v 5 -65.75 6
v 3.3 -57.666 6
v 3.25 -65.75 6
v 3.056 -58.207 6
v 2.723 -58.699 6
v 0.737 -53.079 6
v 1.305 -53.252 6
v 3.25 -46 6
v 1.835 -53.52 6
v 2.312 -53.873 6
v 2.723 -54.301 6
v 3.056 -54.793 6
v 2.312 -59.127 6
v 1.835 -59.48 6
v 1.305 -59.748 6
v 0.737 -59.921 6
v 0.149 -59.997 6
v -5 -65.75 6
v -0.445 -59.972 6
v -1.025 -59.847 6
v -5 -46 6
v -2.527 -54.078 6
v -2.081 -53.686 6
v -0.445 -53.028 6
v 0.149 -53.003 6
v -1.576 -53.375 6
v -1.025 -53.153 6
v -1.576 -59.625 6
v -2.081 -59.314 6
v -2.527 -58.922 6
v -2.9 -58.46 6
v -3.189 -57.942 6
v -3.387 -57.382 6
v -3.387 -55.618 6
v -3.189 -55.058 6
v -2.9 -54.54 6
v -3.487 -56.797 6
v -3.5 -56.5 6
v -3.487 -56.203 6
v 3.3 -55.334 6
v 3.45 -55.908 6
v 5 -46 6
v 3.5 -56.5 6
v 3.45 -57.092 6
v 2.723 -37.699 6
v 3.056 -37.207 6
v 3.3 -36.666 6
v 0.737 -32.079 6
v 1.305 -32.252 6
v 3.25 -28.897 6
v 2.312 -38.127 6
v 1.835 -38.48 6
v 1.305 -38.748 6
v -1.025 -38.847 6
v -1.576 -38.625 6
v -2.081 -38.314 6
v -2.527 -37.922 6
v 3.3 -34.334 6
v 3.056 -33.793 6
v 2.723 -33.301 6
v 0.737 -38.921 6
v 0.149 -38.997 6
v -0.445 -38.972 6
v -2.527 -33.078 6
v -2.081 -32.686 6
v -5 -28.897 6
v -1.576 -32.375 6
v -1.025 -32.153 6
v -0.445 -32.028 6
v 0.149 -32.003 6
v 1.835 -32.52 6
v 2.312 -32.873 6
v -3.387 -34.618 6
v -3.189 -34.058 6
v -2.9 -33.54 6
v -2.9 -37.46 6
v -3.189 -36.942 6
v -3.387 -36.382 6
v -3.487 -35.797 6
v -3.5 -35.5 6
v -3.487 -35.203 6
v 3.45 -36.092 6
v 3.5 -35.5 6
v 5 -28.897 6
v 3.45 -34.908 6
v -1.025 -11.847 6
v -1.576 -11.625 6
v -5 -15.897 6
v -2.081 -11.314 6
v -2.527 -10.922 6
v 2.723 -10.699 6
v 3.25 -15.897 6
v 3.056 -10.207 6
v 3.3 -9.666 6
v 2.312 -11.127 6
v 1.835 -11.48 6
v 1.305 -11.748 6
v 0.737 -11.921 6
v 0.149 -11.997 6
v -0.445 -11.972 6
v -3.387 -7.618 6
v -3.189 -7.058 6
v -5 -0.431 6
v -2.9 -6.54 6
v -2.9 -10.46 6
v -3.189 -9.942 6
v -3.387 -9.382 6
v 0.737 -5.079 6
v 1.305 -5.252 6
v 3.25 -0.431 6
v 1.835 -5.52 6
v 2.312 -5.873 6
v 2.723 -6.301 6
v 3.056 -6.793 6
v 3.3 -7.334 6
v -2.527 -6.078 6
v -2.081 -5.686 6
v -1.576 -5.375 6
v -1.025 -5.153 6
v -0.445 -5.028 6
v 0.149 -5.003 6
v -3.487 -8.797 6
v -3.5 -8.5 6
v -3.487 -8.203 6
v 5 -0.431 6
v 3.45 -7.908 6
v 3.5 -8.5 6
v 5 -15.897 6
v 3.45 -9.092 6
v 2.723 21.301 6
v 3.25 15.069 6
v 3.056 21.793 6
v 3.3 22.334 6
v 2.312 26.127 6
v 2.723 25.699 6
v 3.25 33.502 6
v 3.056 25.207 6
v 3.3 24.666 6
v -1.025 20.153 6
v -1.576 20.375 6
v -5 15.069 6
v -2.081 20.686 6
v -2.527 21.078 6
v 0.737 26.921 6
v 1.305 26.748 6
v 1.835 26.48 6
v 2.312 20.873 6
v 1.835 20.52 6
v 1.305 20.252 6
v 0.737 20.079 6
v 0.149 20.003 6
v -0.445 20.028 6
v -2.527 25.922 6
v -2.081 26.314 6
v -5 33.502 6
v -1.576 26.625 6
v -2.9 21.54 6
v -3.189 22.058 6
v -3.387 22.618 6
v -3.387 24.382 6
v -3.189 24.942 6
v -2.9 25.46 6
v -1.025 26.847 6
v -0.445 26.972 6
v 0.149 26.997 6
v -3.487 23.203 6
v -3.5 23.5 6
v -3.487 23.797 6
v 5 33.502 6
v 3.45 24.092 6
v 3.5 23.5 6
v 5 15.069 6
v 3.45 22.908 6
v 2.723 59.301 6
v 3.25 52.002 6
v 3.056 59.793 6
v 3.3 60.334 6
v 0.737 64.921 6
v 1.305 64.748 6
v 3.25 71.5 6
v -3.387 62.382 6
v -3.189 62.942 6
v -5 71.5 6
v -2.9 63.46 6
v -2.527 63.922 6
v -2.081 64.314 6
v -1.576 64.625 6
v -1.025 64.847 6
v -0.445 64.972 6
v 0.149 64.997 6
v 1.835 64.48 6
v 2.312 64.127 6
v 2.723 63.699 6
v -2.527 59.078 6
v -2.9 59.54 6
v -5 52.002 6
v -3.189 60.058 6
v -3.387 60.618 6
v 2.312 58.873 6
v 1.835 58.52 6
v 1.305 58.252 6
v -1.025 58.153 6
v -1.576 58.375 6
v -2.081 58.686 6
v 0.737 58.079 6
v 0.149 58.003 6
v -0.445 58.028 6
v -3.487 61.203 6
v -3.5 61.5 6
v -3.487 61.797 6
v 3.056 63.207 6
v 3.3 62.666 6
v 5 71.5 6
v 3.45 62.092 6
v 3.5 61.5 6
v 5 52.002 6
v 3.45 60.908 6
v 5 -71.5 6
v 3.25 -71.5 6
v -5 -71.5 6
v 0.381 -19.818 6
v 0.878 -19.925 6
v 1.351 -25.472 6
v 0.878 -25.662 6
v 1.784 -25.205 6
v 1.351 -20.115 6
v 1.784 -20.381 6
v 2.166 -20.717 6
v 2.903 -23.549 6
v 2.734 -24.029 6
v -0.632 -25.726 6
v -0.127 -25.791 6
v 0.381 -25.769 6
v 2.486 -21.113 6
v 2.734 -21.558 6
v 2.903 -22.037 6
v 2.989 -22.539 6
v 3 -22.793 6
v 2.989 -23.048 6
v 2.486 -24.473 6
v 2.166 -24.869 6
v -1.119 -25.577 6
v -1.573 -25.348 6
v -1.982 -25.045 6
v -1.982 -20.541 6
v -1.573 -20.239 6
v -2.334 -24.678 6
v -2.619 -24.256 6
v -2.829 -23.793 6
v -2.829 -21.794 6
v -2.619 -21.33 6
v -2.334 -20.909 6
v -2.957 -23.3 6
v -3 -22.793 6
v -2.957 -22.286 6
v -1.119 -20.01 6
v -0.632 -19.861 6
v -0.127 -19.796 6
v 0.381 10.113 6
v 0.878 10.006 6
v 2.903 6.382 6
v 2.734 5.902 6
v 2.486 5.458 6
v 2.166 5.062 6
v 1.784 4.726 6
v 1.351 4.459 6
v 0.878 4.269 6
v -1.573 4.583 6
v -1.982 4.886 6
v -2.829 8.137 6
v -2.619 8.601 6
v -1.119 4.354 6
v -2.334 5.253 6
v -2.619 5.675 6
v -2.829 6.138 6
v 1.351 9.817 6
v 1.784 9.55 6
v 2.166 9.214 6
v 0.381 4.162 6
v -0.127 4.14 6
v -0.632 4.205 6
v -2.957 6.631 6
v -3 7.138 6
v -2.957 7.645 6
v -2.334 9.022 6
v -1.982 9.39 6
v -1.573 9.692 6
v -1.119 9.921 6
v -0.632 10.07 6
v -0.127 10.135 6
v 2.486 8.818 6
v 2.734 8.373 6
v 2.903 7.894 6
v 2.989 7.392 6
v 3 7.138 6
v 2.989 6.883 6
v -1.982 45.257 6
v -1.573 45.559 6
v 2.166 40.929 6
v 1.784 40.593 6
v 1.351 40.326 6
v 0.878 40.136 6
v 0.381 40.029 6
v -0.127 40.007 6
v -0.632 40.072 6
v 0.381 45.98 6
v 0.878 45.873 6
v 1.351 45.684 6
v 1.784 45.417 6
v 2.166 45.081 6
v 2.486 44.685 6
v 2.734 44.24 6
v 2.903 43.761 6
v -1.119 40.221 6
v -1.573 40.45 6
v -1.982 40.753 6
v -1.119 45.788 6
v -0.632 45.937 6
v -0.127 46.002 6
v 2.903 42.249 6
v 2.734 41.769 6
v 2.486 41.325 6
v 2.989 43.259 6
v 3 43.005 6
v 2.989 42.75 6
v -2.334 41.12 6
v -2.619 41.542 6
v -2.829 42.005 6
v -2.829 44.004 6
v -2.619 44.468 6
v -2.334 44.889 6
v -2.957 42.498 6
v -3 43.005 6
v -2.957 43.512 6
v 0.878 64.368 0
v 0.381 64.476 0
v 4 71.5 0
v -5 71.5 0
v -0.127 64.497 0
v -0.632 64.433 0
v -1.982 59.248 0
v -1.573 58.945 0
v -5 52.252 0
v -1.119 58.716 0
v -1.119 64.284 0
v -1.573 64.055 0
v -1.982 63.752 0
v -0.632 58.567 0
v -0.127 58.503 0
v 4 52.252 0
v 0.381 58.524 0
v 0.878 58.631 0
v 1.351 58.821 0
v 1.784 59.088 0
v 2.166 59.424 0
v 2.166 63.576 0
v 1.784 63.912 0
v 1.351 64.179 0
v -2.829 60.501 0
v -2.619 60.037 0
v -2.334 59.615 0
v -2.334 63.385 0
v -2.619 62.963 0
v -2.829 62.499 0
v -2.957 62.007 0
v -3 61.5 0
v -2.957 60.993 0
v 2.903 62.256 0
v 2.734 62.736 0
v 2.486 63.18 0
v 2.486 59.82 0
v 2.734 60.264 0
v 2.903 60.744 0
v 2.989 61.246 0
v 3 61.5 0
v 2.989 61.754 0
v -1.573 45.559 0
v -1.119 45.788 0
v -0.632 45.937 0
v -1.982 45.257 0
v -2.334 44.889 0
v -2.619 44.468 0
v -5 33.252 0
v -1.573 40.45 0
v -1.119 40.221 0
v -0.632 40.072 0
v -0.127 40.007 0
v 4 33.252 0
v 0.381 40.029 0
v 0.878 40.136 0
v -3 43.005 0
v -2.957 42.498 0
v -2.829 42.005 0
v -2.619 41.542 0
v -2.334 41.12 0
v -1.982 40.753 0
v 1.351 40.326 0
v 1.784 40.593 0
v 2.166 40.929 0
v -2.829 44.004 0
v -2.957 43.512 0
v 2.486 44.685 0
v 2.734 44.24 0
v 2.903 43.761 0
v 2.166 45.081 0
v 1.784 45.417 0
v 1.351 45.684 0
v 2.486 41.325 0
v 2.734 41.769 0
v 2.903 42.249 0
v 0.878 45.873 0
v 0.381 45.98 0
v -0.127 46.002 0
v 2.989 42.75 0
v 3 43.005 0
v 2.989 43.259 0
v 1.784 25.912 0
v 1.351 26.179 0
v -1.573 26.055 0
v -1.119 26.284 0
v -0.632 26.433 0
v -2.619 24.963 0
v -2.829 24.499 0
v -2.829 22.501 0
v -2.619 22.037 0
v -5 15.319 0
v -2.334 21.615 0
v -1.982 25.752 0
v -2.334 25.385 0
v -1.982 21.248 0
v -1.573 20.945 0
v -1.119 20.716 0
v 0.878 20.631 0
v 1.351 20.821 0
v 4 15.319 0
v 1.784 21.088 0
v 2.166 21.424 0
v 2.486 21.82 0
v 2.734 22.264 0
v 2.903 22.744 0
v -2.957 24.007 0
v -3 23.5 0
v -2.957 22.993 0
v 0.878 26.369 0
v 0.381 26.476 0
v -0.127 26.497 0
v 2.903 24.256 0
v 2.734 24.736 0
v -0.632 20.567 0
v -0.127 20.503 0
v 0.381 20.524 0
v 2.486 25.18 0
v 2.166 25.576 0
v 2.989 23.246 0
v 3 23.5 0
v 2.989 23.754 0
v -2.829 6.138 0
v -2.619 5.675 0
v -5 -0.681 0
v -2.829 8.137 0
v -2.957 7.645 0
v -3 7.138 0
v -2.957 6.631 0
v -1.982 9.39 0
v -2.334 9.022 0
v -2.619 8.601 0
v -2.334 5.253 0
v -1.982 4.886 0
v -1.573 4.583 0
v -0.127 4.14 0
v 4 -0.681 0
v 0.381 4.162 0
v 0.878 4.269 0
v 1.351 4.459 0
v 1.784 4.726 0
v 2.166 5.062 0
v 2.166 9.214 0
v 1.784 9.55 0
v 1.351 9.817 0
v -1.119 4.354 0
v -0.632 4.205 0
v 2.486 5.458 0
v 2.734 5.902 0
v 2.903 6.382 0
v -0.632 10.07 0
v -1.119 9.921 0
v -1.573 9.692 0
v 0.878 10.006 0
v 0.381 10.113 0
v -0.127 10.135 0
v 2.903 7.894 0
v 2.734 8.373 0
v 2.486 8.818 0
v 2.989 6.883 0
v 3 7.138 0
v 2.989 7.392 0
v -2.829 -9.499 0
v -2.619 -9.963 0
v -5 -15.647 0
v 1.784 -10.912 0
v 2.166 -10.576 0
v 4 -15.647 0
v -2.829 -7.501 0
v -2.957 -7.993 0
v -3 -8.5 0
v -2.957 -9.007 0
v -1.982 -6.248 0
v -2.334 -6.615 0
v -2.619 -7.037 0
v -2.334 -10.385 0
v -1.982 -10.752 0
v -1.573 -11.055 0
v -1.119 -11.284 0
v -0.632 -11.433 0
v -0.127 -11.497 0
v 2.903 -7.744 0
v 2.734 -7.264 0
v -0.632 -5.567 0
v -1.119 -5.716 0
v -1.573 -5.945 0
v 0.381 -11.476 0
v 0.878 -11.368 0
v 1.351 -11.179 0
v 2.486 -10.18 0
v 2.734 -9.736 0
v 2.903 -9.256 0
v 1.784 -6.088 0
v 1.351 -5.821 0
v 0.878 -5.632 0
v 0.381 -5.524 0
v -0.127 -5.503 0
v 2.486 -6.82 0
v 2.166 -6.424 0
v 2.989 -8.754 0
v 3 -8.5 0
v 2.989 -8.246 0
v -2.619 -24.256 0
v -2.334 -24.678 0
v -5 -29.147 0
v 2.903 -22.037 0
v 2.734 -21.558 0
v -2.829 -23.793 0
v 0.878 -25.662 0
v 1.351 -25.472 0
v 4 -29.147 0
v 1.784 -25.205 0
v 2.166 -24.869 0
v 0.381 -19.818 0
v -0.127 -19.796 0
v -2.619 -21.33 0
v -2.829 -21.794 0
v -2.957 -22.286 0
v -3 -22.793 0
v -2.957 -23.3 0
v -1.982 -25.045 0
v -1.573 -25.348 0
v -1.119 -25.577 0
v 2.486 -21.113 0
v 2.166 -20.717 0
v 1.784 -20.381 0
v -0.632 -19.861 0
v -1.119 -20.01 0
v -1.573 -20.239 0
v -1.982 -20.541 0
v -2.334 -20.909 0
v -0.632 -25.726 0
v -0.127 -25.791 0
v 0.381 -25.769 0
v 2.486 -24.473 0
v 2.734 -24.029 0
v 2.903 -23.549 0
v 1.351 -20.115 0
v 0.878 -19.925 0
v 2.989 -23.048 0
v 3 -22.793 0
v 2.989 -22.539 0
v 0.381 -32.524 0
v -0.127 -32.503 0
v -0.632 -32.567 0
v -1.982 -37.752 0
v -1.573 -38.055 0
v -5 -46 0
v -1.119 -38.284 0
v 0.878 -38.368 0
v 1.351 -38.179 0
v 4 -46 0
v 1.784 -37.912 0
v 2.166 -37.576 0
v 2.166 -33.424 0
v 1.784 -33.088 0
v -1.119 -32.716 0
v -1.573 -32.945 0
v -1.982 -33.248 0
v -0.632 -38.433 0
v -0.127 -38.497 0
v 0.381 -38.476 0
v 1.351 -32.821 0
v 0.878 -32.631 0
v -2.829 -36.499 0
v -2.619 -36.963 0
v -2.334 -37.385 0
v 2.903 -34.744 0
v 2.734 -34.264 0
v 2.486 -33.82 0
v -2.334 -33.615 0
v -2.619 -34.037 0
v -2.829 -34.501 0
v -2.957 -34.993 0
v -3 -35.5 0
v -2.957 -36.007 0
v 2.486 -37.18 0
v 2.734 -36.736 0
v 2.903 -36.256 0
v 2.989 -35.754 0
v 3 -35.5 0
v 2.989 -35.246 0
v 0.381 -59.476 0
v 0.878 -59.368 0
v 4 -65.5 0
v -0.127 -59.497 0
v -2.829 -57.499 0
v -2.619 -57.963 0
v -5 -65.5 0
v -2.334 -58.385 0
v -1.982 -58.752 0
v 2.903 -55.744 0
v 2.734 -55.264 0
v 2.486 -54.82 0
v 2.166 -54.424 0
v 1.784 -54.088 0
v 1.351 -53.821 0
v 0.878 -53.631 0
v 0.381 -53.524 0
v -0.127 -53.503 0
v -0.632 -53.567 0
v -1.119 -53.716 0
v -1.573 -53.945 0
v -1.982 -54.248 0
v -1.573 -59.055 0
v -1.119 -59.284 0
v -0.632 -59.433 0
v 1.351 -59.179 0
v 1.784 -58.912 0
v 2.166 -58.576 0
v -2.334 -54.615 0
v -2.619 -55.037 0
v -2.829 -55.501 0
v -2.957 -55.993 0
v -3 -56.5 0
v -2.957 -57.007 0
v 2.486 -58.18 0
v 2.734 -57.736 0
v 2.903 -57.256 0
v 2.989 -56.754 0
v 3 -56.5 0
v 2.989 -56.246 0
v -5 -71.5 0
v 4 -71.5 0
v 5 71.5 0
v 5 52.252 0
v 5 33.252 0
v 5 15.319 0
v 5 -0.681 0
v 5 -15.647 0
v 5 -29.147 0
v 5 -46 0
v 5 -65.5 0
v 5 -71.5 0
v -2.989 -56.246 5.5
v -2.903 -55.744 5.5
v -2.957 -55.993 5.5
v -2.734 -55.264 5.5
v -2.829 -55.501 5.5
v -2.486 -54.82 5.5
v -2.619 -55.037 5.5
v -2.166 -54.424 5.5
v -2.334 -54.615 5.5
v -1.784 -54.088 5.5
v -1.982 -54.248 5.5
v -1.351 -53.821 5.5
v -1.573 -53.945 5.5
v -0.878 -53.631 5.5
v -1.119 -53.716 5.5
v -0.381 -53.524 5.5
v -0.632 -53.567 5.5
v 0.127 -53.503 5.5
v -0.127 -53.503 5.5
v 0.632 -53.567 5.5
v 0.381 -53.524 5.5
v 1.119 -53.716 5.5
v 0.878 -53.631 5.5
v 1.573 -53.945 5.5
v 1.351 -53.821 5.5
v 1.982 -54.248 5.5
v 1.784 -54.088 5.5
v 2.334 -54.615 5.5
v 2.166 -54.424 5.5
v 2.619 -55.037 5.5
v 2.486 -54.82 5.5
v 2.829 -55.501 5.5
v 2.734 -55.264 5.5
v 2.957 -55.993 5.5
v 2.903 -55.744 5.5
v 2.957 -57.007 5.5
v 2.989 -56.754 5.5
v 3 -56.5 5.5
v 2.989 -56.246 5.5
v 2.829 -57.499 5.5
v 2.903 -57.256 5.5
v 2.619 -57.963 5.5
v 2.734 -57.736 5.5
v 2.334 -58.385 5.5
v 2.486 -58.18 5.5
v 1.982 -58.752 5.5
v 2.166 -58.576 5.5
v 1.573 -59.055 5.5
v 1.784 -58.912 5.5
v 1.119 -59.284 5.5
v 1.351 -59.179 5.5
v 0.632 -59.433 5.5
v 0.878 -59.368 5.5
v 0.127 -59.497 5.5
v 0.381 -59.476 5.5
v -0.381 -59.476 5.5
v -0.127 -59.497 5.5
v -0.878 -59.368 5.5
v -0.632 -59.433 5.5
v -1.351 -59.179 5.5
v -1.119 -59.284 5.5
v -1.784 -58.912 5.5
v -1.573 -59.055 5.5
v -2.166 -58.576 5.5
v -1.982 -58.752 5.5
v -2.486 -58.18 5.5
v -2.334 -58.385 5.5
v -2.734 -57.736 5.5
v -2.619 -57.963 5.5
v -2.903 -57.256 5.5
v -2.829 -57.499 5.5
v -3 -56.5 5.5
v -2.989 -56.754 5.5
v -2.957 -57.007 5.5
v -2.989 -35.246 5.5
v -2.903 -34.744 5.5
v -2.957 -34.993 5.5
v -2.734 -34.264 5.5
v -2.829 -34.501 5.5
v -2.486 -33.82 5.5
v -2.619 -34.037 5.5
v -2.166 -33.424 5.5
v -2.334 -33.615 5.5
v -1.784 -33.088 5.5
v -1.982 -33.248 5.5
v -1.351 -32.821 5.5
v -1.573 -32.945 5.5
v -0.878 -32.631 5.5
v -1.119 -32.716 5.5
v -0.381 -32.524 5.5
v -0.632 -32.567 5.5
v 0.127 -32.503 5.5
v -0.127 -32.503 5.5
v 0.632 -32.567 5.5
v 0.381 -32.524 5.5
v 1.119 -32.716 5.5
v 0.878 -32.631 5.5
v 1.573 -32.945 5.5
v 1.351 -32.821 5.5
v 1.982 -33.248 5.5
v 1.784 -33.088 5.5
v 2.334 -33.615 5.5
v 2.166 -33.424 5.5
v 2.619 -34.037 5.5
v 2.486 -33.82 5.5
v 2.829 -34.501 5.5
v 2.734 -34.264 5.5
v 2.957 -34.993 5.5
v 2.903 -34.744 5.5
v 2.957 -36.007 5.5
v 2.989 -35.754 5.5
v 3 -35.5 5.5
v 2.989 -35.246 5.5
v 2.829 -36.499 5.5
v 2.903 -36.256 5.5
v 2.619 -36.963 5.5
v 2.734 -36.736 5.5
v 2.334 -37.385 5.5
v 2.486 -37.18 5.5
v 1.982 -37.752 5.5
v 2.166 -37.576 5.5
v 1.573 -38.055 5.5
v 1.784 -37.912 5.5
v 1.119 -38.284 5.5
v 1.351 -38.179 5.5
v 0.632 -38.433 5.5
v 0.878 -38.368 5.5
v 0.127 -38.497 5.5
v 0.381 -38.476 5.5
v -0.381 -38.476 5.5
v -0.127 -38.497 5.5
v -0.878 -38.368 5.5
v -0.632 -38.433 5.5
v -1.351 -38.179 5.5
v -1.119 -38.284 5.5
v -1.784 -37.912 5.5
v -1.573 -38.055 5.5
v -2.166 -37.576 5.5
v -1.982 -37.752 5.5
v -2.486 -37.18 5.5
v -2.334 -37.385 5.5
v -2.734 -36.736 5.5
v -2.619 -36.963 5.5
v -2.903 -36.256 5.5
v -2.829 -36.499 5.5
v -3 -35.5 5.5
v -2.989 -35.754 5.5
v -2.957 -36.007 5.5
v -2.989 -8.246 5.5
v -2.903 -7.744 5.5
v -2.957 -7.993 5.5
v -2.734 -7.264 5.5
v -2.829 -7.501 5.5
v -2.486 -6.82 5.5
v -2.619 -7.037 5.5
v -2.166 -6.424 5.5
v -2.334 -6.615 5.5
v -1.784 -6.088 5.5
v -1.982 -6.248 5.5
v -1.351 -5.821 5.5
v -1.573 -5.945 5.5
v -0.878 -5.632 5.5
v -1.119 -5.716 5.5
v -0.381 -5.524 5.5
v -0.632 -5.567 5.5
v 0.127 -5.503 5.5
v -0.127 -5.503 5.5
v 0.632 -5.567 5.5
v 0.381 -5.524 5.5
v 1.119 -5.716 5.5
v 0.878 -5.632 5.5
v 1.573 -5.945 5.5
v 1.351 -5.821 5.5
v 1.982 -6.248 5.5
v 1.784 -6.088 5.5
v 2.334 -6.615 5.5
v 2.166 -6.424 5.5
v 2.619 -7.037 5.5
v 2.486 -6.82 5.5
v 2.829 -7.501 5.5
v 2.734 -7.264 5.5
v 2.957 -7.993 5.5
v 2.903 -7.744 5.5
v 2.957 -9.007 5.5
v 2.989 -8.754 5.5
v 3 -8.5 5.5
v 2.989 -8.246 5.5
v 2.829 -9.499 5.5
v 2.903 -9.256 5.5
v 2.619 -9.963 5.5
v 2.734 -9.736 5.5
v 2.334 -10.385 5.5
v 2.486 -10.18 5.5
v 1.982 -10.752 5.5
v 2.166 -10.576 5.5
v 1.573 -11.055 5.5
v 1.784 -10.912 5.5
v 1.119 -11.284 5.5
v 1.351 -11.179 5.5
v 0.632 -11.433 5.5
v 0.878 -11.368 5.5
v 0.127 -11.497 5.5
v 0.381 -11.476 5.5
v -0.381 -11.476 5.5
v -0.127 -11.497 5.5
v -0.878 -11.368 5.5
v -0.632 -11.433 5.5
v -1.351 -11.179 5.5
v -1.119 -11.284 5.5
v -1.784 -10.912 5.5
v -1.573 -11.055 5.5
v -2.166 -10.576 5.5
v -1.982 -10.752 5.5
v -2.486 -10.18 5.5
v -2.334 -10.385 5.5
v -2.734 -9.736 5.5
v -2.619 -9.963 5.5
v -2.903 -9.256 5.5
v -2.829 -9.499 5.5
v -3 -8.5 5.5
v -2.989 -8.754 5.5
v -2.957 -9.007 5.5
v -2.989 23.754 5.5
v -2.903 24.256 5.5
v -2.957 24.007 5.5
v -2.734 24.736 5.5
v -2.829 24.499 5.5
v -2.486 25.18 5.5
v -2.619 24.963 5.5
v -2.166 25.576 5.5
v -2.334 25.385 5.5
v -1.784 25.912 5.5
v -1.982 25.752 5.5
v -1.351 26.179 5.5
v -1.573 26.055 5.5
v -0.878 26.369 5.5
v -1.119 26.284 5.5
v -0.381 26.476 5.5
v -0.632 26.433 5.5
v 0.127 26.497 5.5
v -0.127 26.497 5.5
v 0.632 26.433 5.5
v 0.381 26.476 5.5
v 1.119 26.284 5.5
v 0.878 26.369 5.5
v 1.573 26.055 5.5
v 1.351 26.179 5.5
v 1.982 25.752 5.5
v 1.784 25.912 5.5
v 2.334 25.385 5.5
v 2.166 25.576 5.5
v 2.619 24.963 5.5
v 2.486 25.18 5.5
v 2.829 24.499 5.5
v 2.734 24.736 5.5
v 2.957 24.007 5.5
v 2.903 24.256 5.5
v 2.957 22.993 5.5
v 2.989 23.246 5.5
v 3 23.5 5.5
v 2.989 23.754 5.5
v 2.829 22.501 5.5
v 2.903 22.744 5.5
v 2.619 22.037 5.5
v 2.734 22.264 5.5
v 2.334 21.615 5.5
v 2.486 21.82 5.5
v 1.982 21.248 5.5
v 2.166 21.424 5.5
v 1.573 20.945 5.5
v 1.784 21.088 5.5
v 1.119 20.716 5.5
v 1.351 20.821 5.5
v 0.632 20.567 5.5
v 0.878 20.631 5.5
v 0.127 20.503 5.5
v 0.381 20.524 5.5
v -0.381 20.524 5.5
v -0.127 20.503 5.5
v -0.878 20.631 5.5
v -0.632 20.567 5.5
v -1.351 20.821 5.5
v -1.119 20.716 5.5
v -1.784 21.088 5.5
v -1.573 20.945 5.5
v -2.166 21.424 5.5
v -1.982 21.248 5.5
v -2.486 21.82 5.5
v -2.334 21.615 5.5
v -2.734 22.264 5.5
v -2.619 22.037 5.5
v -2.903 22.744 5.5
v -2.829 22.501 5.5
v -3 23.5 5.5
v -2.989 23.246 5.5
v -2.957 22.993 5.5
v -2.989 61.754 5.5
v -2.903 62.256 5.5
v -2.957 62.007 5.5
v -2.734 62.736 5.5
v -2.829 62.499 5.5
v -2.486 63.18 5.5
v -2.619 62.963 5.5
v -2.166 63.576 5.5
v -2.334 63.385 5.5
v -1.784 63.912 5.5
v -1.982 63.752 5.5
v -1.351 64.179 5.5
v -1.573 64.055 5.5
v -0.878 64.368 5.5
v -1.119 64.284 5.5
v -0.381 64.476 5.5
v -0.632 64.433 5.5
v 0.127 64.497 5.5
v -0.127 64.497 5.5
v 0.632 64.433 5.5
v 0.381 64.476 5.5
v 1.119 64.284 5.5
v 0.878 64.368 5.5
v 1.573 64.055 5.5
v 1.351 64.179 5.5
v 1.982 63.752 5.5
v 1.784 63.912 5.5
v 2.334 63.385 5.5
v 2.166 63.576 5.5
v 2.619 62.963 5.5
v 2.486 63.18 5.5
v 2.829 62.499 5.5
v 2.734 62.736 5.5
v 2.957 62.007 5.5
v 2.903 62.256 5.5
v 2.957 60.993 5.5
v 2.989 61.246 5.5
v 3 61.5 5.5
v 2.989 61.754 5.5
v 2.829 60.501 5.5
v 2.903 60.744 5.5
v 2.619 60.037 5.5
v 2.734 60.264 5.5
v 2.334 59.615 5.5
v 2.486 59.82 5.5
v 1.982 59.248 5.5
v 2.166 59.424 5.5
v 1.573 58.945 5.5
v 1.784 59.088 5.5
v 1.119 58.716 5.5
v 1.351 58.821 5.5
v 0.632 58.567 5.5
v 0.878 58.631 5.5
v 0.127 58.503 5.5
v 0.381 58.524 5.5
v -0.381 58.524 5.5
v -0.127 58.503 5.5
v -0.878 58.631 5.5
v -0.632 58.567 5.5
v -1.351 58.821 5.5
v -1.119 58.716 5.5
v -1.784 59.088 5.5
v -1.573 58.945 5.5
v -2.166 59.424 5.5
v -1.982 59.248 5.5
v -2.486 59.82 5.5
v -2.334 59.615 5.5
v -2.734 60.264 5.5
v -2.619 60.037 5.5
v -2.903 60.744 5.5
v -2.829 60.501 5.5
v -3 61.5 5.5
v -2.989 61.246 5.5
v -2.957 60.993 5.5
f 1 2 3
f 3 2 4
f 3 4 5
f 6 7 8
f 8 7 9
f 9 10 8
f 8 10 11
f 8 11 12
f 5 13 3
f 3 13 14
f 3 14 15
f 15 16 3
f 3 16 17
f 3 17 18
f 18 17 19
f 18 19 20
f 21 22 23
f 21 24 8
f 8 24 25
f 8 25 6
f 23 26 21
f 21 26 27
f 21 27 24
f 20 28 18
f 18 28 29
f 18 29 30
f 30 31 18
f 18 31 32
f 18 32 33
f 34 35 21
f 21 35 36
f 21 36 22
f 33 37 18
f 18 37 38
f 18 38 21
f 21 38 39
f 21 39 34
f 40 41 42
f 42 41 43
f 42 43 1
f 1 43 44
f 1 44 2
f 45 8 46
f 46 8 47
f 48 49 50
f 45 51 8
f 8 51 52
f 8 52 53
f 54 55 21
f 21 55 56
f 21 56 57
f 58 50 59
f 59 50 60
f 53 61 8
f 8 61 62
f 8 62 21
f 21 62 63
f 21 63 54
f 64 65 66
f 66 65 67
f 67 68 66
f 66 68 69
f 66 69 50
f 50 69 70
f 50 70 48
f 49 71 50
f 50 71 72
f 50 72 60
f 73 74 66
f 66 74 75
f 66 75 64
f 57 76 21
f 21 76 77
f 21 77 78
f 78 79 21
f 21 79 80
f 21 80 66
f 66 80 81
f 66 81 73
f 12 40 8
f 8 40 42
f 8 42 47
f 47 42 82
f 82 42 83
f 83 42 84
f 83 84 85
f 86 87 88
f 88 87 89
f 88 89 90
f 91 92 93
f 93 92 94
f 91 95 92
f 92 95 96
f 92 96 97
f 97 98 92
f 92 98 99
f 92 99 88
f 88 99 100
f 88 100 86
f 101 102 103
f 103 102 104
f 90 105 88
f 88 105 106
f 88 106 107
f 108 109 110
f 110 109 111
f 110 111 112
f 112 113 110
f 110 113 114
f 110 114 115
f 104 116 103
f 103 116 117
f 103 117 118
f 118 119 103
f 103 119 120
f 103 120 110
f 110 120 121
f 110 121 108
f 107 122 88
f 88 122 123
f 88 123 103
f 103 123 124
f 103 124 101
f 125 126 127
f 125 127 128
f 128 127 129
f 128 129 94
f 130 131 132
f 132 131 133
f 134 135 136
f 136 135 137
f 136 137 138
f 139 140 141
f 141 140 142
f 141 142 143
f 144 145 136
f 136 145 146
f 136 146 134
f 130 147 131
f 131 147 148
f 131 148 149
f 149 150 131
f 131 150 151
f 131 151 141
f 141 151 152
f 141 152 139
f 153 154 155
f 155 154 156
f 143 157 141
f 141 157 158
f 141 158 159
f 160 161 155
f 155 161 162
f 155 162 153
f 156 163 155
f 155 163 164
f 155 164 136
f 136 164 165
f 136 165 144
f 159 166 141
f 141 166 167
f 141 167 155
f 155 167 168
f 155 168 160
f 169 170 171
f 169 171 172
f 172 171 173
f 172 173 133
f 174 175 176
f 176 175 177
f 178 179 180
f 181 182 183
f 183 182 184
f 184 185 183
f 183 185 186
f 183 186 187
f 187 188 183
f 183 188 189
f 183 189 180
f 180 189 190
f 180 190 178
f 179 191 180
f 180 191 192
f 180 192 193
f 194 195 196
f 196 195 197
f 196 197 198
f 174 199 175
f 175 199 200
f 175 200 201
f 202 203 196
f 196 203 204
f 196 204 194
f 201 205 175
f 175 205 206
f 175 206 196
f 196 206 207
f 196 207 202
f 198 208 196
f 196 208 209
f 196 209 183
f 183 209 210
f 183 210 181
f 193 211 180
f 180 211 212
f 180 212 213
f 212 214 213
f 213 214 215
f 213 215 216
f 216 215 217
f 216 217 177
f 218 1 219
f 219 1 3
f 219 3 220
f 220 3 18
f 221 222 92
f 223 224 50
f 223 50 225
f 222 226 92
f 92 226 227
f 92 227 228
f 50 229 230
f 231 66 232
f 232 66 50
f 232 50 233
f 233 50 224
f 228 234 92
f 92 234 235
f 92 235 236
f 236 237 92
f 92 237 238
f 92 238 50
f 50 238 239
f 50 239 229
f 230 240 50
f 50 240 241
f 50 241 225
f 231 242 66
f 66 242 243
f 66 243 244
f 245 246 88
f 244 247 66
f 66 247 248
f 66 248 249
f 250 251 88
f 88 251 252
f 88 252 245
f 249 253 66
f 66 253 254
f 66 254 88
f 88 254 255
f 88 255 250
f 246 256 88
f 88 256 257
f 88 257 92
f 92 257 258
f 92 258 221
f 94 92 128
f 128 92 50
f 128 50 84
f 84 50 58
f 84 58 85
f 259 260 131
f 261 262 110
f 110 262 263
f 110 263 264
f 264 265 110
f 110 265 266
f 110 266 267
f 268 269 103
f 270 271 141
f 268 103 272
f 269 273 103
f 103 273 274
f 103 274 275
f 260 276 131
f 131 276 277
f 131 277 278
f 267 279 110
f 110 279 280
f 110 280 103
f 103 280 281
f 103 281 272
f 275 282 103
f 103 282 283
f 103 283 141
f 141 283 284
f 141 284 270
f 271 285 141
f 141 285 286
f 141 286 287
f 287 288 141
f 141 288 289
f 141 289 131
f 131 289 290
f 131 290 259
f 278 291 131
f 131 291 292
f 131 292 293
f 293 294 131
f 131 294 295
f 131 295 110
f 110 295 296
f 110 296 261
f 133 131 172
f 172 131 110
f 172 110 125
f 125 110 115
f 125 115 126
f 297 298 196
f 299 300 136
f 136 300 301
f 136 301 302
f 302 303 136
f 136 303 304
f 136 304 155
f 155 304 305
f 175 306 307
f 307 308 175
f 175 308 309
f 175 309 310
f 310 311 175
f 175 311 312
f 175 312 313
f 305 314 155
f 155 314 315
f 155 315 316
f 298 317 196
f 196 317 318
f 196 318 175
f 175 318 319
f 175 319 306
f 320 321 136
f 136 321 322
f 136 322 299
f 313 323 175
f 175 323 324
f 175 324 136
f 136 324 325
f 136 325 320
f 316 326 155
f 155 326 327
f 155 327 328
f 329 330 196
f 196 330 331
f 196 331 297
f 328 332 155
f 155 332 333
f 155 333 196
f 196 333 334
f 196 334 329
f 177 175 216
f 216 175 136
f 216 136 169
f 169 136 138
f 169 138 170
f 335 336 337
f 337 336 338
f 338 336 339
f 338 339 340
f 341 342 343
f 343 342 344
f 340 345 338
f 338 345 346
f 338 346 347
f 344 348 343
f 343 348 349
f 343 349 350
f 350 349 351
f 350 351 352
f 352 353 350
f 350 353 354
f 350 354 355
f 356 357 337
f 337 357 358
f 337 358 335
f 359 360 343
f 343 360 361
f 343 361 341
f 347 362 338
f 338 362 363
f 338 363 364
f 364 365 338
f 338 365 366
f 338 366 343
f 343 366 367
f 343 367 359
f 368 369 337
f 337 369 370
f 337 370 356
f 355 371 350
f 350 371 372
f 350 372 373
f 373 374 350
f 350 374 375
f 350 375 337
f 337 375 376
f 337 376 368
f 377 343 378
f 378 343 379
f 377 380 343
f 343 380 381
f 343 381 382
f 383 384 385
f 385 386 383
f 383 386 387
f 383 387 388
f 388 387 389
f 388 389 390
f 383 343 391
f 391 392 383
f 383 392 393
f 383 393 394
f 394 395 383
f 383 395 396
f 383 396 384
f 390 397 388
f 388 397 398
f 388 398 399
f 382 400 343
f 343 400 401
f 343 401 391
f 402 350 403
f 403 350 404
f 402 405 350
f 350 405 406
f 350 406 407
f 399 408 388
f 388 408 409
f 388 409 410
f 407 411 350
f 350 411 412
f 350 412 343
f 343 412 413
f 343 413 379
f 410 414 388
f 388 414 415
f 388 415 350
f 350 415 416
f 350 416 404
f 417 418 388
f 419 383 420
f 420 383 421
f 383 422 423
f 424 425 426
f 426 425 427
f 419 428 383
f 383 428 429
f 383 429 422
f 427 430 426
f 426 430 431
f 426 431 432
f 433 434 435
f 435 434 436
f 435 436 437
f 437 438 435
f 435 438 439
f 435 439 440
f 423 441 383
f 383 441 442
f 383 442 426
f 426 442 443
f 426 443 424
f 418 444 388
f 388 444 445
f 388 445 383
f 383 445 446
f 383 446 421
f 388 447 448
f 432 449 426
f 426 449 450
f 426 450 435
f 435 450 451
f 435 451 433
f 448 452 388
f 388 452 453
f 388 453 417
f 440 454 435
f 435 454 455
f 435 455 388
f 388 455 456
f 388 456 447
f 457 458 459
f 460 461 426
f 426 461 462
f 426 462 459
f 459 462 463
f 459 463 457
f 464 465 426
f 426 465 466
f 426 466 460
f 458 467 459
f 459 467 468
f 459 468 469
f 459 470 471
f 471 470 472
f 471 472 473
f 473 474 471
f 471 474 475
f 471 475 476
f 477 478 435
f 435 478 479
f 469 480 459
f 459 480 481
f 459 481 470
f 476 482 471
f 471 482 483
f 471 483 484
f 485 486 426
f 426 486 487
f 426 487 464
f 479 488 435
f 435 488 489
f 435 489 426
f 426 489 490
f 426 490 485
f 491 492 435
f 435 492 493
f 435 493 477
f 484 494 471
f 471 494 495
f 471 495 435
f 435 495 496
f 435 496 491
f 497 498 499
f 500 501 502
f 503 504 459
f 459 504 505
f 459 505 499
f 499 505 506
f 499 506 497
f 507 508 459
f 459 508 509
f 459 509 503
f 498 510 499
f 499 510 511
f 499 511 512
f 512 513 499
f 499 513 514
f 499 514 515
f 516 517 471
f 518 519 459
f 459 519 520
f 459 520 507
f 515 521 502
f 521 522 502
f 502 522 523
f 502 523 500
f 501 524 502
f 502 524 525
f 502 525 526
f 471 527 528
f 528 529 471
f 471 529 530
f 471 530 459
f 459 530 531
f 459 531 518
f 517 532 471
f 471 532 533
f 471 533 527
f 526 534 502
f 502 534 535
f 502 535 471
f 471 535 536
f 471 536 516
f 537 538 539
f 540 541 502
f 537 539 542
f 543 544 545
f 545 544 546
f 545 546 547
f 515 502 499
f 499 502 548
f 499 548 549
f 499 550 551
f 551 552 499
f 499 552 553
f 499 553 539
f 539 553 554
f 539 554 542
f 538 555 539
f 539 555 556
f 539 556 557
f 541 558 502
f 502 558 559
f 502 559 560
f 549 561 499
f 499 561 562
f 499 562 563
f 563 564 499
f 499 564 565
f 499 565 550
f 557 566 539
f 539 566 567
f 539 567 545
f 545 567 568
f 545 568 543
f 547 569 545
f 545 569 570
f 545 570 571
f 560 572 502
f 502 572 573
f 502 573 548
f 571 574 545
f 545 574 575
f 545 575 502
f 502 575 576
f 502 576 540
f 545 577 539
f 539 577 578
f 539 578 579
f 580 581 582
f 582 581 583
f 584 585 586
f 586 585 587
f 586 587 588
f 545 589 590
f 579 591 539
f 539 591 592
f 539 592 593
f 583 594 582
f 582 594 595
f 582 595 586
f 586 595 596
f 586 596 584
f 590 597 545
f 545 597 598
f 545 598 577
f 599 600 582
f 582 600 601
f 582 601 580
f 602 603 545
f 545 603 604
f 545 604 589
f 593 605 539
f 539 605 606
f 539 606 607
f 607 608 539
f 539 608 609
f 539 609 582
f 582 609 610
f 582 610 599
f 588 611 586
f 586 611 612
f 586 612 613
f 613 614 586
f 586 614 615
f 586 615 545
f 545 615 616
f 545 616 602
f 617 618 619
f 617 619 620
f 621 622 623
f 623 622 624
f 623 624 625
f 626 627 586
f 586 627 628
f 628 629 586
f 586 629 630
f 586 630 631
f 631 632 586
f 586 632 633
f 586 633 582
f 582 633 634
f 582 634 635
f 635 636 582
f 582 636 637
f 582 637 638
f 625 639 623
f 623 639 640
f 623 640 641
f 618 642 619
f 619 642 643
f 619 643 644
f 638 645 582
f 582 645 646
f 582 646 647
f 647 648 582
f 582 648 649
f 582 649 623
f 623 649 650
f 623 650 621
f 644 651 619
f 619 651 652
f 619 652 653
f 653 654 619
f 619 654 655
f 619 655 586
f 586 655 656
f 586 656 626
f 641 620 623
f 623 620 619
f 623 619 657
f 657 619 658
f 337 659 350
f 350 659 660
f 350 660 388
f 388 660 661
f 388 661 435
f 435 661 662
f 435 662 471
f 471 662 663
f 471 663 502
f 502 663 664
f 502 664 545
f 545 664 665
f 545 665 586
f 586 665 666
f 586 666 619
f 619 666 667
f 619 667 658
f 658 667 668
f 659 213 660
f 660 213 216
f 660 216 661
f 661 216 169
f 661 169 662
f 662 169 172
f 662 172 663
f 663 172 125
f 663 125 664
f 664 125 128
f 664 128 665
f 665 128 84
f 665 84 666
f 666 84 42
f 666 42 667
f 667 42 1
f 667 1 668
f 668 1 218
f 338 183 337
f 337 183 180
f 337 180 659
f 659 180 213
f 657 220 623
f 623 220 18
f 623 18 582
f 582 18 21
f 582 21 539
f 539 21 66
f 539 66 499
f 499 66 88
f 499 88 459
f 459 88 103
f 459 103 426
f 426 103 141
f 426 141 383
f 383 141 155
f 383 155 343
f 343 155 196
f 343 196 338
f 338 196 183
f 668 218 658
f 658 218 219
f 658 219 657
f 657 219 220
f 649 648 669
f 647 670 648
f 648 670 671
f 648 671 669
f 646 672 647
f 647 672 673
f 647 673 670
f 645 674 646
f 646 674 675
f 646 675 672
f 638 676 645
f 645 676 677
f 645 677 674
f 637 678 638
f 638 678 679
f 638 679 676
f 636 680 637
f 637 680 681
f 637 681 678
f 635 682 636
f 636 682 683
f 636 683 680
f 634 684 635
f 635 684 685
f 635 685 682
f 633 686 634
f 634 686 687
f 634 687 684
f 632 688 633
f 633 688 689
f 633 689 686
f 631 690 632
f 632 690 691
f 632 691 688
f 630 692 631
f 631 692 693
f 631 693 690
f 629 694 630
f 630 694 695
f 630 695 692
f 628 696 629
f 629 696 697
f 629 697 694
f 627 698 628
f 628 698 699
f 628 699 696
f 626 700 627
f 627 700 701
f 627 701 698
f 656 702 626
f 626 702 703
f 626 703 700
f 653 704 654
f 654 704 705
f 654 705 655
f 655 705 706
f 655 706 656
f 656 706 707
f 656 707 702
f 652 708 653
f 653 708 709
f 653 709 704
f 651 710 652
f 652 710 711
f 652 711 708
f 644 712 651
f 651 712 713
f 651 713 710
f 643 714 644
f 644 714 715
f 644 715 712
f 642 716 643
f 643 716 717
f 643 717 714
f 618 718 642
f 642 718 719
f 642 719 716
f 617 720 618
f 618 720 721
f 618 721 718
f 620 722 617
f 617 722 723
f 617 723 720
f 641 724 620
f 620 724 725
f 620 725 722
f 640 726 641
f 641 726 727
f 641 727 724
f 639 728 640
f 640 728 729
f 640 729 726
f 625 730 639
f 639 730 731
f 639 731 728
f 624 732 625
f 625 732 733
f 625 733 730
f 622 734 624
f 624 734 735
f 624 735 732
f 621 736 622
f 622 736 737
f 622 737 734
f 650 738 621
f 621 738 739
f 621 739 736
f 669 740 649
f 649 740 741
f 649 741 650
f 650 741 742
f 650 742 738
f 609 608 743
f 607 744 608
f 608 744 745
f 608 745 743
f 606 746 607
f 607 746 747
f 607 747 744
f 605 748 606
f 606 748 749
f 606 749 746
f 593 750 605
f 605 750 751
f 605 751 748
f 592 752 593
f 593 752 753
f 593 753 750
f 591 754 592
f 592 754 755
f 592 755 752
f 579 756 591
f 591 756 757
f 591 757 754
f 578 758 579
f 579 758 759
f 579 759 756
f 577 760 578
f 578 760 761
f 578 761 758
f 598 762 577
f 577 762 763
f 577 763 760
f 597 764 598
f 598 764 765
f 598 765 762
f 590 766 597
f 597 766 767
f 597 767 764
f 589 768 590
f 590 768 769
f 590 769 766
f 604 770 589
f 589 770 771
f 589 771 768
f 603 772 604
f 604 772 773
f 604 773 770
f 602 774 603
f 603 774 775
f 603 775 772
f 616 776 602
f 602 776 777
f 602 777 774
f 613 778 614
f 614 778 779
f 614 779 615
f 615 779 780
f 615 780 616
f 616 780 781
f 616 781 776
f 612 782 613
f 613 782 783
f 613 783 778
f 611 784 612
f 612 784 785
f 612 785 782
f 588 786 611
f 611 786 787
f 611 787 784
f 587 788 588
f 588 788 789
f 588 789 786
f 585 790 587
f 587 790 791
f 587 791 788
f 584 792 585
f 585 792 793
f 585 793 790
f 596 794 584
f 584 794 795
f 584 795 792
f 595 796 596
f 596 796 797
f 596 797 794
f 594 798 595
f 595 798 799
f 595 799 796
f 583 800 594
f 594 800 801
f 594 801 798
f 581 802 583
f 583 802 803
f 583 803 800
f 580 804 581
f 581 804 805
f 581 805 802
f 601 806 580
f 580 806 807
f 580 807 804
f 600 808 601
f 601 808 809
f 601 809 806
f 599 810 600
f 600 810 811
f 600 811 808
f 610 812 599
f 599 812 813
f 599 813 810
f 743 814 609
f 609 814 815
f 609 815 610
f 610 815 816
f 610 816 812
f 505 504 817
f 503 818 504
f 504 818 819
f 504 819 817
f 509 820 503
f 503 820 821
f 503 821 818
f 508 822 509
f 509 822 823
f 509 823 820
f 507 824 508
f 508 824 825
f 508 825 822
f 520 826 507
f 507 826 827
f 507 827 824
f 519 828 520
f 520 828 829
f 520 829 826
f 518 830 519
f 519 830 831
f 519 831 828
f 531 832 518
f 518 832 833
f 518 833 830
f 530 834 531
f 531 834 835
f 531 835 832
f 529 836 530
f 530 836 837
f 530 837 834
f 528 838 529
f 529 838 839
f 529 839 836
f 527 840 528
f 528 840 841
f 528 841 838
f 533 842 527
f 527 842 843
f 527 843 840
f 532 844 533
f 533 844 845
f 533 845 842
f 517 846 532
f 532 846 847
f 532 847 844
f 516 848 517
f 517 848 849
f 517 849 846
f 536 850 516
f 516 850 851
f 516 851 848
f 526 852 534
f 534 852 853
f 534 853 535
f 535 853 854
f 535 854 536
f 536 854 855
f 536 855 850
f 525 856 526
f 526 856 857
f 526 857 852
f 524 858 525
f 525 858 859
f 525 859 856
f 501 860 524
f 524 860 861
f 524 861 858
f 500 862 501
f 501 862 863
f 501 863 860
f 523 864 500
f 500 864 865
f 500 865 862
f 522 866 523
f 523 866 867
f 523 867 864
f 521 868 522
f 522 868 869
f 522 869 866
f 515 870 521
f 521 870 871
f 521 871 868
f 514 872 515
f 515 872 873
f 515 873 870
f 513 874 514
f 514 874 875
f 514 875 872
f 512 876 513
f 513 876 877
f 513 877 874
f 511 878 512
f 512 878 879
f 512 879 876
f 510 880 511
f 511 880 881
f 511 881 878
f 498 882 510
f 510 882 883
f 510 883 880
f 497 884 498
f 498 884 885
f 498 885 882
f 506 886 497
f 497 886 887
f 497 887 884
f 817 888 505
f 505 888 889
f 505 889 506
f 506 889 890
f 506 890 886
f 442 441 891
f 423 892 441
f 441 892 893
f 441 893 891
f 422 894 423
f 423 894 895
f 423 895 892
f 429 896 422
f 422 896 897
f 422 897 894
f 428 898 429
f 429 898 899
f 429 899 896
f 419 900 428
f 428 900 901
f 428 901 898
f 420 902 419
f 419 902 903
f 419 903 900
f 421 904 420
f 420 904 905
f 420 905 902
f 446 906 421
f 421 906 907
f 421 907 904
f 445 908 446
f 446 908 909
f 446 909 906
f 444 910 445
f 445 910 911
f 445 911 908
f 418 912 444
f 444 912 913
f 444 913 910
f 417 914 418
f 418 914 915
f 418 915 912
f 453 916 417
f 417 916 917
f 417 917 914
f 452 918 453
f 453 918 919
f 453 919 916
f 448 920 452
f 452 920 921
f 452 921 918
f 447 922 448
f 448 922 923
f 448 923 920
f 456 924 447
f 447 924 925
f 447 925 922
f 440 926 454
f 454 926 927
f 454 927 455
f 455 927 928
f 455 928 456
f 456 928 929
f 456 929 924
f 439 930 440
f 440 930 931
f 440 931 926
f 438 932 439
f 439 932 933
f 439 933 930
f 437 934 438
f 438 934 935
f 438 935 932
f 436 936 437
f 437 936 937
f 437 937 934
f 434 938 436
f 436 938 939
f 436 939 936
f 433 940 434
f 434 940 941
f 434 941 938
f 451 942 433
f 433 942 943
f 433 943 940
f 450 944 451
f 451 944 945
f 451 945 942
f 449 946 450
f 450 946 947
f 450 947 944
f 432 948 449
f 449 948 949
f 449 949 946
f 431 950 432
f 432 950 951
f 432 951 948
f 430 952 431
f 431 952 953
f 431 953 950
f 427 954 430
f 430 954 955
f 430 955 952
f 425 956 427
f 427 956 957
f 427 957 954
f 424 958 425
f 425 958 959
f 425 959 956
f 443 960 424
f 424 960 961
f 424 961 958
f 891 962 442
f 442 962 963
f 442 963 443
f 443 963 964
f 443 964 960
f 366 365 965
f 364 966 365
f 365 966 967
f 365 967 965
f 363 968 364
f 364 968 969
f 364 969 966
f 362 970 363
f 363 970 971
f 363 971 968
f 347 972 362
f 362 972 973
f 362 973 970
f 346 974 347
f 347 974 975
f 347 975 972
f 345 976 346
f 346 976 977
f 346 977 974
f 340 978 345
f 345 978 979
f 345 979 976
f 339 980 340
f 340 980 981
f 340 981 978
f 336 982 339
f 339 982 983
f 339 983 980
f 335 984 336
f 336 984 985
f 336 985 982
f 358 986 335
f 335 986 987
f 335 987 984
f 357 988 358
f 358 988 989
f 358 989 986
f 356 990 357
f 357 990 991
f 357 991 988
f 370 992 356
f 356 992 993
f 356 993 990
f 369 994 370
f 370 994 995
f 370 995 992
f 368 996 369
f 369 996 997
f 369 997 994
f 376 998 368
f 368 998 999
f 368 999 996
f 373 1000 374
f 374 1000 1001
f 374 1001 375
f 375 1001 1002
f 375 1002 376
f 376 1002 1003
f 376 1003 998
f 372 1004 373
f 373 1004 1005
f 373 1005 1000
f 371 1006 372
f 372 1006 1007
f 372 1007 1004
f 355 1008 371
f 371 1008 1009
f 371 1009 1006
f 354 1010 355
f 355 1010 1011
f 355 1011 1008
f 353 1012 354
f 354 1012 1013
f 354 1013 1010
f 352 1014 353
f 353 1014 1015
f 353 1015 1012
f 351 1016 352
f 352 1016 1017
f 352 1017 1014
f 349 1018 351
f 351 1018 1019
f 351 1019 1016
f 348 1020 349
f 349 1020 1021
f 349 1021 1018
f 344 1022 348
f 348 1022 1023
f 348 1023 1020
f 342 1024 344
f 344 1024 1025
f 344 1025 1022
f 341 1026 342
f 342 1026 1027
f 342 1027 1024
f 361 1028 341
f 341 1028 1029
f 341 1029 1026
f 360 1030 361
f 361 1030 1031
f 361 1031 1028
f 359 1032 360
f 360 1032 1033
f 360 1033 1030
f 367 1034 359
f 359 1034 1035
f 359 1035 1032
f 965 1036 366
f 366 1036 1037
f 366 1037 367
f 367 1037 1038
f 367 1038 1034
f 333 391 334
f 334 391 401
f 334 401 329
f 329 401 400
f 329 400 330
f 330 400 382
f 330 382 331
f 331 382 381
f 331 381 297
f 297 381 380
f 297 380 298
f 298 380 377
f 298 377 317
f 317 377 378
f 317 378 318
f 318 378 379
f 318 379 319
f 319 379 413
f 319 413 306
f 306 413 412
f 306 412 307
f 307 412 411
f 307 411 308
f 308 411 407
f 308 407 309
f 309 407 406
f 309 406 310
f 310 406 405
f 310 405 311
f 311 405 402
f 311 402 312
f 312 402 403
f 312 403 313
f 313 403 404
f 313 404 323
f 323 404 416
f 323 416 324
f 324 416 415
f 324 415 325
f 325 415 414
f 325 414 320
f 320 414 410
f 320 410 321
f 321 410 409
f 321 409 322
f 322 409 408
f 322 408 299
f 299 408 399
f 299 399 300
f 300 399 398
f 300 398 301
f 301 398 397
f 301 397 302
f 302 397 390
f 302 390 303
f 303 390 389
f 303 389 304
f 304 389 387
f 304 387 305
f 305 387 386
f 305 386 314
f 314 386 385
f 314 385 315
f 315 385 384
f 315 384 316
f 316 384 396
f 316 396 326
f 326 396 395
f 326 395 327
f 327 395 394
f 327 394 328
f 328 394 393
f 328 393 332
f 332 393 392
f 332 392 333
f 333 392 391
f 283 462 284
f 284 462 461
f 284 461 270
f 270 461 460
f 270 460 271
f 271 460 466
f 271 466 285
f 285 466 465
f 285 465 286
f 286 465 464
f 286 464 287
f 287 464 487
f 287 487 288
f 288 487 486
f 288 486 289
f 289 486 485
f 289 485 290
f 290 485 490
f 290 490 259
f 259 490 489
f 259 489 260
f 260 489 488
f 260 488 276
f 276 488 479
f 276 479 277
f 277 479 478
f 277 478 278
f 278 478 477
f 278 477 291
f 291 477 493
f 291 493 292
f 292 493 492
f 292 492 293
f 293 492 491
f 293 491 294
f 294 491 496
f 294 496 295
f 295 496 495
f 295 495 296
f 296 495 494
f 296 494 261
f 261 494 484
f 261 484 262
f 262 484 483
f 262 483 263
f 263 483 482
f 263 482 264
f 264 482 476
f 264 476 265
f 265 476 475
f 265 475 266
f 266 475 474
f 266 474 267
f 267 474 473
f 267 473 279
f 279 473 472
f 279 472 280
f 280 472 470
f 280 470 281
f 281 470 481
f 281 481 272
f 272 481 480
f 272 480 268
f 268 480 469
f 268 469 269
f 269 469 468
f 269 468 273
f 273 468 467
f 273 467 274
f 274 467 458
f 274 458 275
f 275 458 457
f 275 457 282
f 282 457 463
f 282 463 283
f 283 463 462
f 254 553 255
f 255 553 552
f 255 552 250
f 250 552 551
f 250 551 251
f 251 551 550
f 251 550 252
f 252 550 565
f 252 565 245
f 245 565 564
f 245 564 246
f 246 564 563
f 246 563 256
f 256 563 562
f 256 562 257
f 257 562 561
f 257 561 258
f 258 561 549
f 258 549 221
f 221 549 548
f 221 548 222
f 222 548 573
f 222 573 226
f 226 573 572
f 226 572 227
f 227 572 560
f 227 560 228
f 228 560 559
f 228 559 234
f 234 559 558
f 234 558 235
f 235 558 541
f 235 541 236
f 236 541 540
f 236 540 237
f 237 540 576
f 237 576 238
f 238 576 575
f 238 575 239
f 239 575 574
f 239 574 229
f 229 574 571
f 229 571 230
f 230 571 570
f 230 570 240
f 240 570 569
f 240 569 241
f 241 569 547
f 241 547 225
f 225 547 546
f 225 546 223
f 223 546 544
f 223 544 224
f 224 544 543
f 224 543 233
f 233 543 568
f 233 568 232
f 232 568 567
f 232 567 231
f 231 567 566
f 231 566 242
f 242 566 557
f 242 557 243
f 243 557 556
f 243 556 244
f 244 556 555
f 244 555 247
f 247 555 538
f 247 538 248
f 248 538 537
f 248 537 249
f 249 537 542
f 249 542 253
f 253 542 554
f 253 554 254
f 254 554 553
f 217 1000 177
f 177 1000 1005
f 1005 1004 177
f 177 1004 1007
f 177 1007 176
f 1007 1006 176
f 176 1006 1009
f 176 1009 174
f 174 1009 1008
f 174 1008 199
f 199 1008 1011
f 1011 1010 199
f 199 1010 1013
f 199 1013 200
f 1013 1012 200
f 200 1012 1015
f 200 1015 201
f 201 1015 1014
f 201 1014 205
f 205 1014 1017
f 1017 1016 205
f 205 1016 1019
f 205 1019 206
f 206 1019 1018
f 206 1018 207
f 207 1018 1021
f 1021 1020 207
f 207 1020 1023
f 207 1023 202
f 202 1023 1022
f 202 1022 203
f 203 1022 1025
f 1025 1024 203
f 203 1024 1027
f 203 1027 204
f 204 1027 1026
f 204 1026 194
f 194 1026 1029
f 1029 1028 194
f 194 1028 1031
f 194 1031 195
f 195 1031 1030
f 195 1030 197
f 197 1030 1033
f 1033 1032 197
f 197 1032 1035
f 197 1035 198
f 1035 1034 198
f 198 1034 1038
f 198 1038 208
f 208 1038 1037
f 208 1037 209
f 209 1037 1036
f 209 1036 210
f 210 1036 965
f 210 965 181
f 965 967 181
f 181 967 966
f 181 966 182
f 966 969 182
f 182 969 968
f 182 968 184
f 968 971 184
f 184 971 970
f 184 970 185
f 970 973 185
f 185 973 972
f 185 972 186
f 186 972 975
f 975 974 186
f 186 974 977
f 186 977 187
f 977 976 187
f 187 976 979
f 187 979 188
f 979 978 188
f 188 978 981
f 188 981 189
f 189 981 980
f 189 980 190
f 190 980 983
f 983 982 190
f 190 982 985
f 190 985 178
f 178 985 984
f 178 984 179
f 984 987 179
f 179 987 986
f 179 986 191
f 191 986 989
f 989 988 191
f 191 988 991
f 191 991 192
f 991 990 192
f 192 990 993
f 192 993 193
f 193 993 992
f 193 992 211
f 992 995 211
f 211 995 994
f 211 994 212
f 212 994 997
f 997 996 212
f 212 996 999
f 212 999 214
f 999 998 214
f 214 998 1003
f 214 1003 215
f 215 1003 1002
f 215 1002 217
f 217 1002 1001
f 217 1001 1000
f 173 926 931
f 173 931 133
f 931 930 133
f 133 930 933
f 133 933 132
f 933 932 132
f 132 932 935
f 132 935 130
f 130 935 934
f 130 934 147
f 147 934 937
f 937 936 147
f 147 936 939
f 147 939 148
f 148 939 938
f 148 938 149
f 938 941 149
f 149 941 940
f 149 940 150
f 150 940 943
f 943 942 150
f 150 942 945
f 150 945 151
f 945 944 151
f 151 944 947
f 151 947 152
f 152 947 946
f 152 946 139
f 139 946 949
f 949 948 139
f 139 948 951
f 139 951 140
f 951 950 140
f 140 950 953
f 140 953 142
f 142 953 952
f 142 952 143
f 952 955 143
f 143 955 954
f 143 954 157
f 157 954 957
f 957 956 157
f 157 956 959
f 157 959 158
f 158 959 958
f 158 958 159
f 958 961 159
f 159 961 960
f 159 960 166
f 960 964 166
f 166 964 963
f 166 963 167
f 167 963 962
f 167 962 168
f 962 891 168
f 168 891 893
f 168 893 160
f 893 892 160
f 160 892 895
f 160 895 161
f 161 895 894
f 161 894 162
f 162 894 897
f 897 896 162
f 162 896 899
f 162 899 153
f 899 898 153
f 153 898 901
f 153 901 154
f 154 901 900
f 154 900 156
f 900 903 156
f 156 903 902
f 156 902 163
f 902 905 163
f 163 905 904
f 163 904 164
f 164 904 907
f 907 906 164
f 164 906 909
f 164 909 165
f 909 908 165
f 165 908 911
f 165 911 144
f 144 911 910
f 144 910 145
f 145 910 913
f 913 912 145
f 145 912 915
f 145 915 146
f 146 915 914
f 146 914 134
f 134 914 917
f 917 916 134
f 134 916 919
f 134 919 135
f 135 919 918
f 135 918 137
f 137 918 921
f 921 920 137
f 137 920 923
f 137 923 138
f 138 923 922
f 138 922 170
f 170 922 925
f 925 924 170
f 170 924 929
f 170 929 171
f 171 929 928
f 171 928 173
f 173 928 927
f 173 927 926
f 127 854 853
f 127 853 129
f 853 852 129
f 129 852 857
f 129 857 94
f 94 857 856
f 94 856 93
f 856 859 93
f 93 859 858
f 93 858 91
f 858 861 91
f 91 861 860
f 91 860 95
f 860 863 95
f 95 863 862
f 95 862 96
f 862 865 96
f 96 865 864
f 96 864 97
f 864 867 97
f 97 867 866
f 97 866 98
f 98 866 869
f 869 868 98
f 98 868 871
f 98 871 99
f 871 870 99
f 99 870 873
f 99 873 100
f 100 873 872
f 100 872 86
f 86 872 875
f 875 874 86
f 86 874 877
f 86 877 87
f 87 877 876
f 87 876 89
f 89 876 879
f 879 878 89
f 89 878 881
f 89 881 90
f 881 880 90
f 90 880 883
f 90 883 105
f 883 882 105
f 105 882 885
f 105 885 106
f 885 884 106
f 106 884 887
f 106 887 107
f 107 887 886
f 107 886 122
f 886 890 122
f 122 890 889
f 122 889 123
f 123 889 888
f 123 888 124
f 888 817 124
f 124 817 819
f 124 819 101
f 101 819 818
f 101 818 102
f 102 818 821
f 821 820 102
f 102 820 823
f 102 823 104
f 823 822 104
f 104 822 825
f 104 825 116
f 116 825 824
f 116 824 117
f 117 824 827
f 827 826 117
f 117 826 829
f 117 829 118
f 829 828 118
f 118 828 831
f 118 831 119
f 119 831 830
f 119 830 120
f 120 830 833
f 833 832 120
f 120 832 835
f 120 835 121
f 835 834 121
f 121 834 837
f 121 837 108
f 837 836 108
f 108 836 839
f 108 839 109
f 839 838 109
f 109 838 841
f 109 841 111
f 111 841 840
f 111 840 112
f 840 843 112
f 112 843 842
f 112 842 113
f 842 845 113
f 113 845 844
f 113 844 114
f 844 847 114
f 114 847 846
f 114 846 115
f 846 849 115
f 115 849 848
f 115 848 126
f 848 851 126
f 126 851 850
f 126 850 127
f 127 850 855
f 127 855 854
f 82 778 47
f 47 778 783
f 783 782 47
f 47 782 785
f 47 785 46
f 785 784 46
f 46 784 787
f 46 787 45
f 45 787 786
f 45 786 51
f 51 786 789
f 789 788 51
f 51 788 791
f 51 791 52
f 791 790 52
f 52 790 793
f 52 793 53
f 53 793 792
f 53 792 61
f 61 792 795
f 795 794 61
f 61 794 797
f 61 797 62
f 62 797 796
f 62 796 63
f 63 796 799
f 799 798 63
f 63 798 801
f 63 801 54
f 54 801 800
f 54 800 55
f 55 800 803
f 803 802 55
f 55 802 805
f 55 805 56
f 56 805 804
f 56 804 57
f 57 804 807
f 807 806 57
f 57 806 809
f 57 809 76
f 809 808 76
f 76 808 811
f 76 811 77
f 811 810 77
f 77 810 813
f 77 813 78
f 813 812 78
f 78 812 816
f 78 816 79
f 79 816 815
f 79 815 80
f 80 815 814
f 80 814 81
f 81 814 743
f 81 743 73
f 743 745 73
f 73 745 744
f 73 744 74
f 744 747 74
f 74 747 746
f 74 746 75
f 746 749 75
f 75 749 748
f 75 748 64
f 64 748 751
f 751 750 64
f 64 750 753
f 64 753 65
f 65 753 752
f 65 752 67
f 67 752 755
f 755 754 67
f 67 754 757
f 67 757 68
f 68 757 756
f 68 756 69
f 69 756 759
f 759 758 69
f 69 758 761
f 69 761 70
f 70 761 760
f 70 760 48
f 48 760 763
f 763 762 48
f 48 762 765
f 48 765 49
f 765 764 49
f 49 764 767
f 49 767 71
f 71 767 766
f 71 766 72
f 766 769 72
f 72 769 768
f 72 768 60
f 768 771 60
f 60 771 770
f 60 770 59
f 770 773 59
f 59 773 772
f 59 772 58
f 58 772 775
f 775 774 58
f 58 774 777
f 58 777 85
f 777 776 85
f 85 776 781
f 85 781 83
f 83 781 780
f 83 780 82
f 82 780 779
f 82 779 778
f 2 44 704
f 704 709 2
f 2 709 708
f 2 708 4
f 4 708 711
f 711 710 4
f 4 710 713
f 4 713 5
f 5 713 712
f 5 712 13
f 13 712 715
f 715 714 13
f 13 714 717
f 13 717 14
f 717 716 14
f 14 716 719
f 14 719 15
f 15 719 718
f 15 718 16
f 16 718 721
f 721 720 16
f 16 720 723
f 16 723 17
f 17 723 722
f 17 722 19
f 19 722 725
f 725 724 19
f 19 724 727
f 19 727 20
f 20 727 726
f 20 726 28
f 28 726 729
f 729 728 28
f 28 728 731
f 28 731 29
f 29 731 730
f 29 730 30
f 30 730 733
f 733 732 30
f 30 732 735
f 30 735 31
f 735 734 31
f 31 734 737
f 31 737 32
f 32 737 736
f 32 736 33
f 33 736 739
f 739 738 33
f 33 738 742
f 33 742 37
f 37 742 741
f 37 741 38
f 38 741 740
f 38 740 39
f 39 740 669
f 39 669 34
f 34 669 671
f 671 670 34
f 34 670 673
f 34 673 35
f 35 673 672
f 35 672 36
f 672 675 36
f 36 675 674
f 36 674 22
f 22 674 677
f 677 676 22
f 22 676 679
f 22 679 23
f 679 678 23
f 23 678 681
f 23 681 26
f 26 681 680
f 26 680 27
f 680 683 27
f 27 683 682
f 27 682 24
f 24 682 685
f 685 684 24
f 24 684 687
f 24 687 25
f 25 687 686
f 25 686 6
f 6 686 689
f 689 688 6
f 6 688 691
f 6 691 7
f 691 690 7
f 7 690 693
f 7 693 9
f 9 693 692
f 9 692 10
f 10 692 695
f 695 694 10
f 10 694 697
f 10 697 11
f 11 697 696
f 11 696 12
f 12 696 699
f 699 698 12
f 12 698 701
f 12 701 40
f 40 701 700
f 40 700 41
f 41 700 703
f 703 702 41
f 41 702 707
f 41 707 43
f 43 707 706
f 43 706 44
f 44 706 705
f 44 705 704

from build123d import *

# Parameters (mm, degrees)
SKETCH1_W           = 10
SKETCH1_H           = 143
SKETCH1_R           = 3
BOSS_EXTRUDE1_DEPTH = 6
CHAMFER1_SIZE       = 0.5


with BuildPart() as part:
    # Sketch1 → Boss-Extrude1 (new body)
    with BuildSketch(Plane.XY):
        Rectangle(SKETCH1_W, SKETCH1_H)
        with Locations((0, -56.5)):
            Circle(SKETCH1_R, mode=Mode.SUBTRACT)
        with Locations((0, -35.5)):
            Circle(SKETCH1_R, mode=Mode.SUBTRACT)
        with Locations((0, -8.5)):
            Circle(SKETCH1_R, mode=Mode.SUBTRACT)
        with Locations((0, 23.5)):
            Circle(SKETCH1_R, mode=Mode.SUBTRACT)
        with Locations((0, 61.5)):
            Circle(SKETCH1_R, mode=Mode.SUBTRACT)
        with Locations((0, 43.004767178)):
            Circle(SKETCH1_R, mode=Mode.SUBTRACT)
        with Locations((0, 7.137747133)):
            Circle(SKETCH1_R, mode=Mode.SUBTRACT)
        with Locations((0, -22.793294966)):
            Circle(SKETCH1_R, mode=Mode.SUBTRACT)
    extrude(amount=BOSS_EXTRUDE1_DEPTH)

    # Chamfer1
    chamfer1_edges = [part.edges().sort_by_distance(p)[0] for p in [
        (-3, -56.5, 6),
        (-3, -35.5, 6),
        (-3, -8.5, 6),
        (-3, 23.5, 6),
        (-3, 61.5, 6),
    ]]
    chamfer(chamfer1_edges, length=CHAMFER1_SIZE)


solid = part.part
